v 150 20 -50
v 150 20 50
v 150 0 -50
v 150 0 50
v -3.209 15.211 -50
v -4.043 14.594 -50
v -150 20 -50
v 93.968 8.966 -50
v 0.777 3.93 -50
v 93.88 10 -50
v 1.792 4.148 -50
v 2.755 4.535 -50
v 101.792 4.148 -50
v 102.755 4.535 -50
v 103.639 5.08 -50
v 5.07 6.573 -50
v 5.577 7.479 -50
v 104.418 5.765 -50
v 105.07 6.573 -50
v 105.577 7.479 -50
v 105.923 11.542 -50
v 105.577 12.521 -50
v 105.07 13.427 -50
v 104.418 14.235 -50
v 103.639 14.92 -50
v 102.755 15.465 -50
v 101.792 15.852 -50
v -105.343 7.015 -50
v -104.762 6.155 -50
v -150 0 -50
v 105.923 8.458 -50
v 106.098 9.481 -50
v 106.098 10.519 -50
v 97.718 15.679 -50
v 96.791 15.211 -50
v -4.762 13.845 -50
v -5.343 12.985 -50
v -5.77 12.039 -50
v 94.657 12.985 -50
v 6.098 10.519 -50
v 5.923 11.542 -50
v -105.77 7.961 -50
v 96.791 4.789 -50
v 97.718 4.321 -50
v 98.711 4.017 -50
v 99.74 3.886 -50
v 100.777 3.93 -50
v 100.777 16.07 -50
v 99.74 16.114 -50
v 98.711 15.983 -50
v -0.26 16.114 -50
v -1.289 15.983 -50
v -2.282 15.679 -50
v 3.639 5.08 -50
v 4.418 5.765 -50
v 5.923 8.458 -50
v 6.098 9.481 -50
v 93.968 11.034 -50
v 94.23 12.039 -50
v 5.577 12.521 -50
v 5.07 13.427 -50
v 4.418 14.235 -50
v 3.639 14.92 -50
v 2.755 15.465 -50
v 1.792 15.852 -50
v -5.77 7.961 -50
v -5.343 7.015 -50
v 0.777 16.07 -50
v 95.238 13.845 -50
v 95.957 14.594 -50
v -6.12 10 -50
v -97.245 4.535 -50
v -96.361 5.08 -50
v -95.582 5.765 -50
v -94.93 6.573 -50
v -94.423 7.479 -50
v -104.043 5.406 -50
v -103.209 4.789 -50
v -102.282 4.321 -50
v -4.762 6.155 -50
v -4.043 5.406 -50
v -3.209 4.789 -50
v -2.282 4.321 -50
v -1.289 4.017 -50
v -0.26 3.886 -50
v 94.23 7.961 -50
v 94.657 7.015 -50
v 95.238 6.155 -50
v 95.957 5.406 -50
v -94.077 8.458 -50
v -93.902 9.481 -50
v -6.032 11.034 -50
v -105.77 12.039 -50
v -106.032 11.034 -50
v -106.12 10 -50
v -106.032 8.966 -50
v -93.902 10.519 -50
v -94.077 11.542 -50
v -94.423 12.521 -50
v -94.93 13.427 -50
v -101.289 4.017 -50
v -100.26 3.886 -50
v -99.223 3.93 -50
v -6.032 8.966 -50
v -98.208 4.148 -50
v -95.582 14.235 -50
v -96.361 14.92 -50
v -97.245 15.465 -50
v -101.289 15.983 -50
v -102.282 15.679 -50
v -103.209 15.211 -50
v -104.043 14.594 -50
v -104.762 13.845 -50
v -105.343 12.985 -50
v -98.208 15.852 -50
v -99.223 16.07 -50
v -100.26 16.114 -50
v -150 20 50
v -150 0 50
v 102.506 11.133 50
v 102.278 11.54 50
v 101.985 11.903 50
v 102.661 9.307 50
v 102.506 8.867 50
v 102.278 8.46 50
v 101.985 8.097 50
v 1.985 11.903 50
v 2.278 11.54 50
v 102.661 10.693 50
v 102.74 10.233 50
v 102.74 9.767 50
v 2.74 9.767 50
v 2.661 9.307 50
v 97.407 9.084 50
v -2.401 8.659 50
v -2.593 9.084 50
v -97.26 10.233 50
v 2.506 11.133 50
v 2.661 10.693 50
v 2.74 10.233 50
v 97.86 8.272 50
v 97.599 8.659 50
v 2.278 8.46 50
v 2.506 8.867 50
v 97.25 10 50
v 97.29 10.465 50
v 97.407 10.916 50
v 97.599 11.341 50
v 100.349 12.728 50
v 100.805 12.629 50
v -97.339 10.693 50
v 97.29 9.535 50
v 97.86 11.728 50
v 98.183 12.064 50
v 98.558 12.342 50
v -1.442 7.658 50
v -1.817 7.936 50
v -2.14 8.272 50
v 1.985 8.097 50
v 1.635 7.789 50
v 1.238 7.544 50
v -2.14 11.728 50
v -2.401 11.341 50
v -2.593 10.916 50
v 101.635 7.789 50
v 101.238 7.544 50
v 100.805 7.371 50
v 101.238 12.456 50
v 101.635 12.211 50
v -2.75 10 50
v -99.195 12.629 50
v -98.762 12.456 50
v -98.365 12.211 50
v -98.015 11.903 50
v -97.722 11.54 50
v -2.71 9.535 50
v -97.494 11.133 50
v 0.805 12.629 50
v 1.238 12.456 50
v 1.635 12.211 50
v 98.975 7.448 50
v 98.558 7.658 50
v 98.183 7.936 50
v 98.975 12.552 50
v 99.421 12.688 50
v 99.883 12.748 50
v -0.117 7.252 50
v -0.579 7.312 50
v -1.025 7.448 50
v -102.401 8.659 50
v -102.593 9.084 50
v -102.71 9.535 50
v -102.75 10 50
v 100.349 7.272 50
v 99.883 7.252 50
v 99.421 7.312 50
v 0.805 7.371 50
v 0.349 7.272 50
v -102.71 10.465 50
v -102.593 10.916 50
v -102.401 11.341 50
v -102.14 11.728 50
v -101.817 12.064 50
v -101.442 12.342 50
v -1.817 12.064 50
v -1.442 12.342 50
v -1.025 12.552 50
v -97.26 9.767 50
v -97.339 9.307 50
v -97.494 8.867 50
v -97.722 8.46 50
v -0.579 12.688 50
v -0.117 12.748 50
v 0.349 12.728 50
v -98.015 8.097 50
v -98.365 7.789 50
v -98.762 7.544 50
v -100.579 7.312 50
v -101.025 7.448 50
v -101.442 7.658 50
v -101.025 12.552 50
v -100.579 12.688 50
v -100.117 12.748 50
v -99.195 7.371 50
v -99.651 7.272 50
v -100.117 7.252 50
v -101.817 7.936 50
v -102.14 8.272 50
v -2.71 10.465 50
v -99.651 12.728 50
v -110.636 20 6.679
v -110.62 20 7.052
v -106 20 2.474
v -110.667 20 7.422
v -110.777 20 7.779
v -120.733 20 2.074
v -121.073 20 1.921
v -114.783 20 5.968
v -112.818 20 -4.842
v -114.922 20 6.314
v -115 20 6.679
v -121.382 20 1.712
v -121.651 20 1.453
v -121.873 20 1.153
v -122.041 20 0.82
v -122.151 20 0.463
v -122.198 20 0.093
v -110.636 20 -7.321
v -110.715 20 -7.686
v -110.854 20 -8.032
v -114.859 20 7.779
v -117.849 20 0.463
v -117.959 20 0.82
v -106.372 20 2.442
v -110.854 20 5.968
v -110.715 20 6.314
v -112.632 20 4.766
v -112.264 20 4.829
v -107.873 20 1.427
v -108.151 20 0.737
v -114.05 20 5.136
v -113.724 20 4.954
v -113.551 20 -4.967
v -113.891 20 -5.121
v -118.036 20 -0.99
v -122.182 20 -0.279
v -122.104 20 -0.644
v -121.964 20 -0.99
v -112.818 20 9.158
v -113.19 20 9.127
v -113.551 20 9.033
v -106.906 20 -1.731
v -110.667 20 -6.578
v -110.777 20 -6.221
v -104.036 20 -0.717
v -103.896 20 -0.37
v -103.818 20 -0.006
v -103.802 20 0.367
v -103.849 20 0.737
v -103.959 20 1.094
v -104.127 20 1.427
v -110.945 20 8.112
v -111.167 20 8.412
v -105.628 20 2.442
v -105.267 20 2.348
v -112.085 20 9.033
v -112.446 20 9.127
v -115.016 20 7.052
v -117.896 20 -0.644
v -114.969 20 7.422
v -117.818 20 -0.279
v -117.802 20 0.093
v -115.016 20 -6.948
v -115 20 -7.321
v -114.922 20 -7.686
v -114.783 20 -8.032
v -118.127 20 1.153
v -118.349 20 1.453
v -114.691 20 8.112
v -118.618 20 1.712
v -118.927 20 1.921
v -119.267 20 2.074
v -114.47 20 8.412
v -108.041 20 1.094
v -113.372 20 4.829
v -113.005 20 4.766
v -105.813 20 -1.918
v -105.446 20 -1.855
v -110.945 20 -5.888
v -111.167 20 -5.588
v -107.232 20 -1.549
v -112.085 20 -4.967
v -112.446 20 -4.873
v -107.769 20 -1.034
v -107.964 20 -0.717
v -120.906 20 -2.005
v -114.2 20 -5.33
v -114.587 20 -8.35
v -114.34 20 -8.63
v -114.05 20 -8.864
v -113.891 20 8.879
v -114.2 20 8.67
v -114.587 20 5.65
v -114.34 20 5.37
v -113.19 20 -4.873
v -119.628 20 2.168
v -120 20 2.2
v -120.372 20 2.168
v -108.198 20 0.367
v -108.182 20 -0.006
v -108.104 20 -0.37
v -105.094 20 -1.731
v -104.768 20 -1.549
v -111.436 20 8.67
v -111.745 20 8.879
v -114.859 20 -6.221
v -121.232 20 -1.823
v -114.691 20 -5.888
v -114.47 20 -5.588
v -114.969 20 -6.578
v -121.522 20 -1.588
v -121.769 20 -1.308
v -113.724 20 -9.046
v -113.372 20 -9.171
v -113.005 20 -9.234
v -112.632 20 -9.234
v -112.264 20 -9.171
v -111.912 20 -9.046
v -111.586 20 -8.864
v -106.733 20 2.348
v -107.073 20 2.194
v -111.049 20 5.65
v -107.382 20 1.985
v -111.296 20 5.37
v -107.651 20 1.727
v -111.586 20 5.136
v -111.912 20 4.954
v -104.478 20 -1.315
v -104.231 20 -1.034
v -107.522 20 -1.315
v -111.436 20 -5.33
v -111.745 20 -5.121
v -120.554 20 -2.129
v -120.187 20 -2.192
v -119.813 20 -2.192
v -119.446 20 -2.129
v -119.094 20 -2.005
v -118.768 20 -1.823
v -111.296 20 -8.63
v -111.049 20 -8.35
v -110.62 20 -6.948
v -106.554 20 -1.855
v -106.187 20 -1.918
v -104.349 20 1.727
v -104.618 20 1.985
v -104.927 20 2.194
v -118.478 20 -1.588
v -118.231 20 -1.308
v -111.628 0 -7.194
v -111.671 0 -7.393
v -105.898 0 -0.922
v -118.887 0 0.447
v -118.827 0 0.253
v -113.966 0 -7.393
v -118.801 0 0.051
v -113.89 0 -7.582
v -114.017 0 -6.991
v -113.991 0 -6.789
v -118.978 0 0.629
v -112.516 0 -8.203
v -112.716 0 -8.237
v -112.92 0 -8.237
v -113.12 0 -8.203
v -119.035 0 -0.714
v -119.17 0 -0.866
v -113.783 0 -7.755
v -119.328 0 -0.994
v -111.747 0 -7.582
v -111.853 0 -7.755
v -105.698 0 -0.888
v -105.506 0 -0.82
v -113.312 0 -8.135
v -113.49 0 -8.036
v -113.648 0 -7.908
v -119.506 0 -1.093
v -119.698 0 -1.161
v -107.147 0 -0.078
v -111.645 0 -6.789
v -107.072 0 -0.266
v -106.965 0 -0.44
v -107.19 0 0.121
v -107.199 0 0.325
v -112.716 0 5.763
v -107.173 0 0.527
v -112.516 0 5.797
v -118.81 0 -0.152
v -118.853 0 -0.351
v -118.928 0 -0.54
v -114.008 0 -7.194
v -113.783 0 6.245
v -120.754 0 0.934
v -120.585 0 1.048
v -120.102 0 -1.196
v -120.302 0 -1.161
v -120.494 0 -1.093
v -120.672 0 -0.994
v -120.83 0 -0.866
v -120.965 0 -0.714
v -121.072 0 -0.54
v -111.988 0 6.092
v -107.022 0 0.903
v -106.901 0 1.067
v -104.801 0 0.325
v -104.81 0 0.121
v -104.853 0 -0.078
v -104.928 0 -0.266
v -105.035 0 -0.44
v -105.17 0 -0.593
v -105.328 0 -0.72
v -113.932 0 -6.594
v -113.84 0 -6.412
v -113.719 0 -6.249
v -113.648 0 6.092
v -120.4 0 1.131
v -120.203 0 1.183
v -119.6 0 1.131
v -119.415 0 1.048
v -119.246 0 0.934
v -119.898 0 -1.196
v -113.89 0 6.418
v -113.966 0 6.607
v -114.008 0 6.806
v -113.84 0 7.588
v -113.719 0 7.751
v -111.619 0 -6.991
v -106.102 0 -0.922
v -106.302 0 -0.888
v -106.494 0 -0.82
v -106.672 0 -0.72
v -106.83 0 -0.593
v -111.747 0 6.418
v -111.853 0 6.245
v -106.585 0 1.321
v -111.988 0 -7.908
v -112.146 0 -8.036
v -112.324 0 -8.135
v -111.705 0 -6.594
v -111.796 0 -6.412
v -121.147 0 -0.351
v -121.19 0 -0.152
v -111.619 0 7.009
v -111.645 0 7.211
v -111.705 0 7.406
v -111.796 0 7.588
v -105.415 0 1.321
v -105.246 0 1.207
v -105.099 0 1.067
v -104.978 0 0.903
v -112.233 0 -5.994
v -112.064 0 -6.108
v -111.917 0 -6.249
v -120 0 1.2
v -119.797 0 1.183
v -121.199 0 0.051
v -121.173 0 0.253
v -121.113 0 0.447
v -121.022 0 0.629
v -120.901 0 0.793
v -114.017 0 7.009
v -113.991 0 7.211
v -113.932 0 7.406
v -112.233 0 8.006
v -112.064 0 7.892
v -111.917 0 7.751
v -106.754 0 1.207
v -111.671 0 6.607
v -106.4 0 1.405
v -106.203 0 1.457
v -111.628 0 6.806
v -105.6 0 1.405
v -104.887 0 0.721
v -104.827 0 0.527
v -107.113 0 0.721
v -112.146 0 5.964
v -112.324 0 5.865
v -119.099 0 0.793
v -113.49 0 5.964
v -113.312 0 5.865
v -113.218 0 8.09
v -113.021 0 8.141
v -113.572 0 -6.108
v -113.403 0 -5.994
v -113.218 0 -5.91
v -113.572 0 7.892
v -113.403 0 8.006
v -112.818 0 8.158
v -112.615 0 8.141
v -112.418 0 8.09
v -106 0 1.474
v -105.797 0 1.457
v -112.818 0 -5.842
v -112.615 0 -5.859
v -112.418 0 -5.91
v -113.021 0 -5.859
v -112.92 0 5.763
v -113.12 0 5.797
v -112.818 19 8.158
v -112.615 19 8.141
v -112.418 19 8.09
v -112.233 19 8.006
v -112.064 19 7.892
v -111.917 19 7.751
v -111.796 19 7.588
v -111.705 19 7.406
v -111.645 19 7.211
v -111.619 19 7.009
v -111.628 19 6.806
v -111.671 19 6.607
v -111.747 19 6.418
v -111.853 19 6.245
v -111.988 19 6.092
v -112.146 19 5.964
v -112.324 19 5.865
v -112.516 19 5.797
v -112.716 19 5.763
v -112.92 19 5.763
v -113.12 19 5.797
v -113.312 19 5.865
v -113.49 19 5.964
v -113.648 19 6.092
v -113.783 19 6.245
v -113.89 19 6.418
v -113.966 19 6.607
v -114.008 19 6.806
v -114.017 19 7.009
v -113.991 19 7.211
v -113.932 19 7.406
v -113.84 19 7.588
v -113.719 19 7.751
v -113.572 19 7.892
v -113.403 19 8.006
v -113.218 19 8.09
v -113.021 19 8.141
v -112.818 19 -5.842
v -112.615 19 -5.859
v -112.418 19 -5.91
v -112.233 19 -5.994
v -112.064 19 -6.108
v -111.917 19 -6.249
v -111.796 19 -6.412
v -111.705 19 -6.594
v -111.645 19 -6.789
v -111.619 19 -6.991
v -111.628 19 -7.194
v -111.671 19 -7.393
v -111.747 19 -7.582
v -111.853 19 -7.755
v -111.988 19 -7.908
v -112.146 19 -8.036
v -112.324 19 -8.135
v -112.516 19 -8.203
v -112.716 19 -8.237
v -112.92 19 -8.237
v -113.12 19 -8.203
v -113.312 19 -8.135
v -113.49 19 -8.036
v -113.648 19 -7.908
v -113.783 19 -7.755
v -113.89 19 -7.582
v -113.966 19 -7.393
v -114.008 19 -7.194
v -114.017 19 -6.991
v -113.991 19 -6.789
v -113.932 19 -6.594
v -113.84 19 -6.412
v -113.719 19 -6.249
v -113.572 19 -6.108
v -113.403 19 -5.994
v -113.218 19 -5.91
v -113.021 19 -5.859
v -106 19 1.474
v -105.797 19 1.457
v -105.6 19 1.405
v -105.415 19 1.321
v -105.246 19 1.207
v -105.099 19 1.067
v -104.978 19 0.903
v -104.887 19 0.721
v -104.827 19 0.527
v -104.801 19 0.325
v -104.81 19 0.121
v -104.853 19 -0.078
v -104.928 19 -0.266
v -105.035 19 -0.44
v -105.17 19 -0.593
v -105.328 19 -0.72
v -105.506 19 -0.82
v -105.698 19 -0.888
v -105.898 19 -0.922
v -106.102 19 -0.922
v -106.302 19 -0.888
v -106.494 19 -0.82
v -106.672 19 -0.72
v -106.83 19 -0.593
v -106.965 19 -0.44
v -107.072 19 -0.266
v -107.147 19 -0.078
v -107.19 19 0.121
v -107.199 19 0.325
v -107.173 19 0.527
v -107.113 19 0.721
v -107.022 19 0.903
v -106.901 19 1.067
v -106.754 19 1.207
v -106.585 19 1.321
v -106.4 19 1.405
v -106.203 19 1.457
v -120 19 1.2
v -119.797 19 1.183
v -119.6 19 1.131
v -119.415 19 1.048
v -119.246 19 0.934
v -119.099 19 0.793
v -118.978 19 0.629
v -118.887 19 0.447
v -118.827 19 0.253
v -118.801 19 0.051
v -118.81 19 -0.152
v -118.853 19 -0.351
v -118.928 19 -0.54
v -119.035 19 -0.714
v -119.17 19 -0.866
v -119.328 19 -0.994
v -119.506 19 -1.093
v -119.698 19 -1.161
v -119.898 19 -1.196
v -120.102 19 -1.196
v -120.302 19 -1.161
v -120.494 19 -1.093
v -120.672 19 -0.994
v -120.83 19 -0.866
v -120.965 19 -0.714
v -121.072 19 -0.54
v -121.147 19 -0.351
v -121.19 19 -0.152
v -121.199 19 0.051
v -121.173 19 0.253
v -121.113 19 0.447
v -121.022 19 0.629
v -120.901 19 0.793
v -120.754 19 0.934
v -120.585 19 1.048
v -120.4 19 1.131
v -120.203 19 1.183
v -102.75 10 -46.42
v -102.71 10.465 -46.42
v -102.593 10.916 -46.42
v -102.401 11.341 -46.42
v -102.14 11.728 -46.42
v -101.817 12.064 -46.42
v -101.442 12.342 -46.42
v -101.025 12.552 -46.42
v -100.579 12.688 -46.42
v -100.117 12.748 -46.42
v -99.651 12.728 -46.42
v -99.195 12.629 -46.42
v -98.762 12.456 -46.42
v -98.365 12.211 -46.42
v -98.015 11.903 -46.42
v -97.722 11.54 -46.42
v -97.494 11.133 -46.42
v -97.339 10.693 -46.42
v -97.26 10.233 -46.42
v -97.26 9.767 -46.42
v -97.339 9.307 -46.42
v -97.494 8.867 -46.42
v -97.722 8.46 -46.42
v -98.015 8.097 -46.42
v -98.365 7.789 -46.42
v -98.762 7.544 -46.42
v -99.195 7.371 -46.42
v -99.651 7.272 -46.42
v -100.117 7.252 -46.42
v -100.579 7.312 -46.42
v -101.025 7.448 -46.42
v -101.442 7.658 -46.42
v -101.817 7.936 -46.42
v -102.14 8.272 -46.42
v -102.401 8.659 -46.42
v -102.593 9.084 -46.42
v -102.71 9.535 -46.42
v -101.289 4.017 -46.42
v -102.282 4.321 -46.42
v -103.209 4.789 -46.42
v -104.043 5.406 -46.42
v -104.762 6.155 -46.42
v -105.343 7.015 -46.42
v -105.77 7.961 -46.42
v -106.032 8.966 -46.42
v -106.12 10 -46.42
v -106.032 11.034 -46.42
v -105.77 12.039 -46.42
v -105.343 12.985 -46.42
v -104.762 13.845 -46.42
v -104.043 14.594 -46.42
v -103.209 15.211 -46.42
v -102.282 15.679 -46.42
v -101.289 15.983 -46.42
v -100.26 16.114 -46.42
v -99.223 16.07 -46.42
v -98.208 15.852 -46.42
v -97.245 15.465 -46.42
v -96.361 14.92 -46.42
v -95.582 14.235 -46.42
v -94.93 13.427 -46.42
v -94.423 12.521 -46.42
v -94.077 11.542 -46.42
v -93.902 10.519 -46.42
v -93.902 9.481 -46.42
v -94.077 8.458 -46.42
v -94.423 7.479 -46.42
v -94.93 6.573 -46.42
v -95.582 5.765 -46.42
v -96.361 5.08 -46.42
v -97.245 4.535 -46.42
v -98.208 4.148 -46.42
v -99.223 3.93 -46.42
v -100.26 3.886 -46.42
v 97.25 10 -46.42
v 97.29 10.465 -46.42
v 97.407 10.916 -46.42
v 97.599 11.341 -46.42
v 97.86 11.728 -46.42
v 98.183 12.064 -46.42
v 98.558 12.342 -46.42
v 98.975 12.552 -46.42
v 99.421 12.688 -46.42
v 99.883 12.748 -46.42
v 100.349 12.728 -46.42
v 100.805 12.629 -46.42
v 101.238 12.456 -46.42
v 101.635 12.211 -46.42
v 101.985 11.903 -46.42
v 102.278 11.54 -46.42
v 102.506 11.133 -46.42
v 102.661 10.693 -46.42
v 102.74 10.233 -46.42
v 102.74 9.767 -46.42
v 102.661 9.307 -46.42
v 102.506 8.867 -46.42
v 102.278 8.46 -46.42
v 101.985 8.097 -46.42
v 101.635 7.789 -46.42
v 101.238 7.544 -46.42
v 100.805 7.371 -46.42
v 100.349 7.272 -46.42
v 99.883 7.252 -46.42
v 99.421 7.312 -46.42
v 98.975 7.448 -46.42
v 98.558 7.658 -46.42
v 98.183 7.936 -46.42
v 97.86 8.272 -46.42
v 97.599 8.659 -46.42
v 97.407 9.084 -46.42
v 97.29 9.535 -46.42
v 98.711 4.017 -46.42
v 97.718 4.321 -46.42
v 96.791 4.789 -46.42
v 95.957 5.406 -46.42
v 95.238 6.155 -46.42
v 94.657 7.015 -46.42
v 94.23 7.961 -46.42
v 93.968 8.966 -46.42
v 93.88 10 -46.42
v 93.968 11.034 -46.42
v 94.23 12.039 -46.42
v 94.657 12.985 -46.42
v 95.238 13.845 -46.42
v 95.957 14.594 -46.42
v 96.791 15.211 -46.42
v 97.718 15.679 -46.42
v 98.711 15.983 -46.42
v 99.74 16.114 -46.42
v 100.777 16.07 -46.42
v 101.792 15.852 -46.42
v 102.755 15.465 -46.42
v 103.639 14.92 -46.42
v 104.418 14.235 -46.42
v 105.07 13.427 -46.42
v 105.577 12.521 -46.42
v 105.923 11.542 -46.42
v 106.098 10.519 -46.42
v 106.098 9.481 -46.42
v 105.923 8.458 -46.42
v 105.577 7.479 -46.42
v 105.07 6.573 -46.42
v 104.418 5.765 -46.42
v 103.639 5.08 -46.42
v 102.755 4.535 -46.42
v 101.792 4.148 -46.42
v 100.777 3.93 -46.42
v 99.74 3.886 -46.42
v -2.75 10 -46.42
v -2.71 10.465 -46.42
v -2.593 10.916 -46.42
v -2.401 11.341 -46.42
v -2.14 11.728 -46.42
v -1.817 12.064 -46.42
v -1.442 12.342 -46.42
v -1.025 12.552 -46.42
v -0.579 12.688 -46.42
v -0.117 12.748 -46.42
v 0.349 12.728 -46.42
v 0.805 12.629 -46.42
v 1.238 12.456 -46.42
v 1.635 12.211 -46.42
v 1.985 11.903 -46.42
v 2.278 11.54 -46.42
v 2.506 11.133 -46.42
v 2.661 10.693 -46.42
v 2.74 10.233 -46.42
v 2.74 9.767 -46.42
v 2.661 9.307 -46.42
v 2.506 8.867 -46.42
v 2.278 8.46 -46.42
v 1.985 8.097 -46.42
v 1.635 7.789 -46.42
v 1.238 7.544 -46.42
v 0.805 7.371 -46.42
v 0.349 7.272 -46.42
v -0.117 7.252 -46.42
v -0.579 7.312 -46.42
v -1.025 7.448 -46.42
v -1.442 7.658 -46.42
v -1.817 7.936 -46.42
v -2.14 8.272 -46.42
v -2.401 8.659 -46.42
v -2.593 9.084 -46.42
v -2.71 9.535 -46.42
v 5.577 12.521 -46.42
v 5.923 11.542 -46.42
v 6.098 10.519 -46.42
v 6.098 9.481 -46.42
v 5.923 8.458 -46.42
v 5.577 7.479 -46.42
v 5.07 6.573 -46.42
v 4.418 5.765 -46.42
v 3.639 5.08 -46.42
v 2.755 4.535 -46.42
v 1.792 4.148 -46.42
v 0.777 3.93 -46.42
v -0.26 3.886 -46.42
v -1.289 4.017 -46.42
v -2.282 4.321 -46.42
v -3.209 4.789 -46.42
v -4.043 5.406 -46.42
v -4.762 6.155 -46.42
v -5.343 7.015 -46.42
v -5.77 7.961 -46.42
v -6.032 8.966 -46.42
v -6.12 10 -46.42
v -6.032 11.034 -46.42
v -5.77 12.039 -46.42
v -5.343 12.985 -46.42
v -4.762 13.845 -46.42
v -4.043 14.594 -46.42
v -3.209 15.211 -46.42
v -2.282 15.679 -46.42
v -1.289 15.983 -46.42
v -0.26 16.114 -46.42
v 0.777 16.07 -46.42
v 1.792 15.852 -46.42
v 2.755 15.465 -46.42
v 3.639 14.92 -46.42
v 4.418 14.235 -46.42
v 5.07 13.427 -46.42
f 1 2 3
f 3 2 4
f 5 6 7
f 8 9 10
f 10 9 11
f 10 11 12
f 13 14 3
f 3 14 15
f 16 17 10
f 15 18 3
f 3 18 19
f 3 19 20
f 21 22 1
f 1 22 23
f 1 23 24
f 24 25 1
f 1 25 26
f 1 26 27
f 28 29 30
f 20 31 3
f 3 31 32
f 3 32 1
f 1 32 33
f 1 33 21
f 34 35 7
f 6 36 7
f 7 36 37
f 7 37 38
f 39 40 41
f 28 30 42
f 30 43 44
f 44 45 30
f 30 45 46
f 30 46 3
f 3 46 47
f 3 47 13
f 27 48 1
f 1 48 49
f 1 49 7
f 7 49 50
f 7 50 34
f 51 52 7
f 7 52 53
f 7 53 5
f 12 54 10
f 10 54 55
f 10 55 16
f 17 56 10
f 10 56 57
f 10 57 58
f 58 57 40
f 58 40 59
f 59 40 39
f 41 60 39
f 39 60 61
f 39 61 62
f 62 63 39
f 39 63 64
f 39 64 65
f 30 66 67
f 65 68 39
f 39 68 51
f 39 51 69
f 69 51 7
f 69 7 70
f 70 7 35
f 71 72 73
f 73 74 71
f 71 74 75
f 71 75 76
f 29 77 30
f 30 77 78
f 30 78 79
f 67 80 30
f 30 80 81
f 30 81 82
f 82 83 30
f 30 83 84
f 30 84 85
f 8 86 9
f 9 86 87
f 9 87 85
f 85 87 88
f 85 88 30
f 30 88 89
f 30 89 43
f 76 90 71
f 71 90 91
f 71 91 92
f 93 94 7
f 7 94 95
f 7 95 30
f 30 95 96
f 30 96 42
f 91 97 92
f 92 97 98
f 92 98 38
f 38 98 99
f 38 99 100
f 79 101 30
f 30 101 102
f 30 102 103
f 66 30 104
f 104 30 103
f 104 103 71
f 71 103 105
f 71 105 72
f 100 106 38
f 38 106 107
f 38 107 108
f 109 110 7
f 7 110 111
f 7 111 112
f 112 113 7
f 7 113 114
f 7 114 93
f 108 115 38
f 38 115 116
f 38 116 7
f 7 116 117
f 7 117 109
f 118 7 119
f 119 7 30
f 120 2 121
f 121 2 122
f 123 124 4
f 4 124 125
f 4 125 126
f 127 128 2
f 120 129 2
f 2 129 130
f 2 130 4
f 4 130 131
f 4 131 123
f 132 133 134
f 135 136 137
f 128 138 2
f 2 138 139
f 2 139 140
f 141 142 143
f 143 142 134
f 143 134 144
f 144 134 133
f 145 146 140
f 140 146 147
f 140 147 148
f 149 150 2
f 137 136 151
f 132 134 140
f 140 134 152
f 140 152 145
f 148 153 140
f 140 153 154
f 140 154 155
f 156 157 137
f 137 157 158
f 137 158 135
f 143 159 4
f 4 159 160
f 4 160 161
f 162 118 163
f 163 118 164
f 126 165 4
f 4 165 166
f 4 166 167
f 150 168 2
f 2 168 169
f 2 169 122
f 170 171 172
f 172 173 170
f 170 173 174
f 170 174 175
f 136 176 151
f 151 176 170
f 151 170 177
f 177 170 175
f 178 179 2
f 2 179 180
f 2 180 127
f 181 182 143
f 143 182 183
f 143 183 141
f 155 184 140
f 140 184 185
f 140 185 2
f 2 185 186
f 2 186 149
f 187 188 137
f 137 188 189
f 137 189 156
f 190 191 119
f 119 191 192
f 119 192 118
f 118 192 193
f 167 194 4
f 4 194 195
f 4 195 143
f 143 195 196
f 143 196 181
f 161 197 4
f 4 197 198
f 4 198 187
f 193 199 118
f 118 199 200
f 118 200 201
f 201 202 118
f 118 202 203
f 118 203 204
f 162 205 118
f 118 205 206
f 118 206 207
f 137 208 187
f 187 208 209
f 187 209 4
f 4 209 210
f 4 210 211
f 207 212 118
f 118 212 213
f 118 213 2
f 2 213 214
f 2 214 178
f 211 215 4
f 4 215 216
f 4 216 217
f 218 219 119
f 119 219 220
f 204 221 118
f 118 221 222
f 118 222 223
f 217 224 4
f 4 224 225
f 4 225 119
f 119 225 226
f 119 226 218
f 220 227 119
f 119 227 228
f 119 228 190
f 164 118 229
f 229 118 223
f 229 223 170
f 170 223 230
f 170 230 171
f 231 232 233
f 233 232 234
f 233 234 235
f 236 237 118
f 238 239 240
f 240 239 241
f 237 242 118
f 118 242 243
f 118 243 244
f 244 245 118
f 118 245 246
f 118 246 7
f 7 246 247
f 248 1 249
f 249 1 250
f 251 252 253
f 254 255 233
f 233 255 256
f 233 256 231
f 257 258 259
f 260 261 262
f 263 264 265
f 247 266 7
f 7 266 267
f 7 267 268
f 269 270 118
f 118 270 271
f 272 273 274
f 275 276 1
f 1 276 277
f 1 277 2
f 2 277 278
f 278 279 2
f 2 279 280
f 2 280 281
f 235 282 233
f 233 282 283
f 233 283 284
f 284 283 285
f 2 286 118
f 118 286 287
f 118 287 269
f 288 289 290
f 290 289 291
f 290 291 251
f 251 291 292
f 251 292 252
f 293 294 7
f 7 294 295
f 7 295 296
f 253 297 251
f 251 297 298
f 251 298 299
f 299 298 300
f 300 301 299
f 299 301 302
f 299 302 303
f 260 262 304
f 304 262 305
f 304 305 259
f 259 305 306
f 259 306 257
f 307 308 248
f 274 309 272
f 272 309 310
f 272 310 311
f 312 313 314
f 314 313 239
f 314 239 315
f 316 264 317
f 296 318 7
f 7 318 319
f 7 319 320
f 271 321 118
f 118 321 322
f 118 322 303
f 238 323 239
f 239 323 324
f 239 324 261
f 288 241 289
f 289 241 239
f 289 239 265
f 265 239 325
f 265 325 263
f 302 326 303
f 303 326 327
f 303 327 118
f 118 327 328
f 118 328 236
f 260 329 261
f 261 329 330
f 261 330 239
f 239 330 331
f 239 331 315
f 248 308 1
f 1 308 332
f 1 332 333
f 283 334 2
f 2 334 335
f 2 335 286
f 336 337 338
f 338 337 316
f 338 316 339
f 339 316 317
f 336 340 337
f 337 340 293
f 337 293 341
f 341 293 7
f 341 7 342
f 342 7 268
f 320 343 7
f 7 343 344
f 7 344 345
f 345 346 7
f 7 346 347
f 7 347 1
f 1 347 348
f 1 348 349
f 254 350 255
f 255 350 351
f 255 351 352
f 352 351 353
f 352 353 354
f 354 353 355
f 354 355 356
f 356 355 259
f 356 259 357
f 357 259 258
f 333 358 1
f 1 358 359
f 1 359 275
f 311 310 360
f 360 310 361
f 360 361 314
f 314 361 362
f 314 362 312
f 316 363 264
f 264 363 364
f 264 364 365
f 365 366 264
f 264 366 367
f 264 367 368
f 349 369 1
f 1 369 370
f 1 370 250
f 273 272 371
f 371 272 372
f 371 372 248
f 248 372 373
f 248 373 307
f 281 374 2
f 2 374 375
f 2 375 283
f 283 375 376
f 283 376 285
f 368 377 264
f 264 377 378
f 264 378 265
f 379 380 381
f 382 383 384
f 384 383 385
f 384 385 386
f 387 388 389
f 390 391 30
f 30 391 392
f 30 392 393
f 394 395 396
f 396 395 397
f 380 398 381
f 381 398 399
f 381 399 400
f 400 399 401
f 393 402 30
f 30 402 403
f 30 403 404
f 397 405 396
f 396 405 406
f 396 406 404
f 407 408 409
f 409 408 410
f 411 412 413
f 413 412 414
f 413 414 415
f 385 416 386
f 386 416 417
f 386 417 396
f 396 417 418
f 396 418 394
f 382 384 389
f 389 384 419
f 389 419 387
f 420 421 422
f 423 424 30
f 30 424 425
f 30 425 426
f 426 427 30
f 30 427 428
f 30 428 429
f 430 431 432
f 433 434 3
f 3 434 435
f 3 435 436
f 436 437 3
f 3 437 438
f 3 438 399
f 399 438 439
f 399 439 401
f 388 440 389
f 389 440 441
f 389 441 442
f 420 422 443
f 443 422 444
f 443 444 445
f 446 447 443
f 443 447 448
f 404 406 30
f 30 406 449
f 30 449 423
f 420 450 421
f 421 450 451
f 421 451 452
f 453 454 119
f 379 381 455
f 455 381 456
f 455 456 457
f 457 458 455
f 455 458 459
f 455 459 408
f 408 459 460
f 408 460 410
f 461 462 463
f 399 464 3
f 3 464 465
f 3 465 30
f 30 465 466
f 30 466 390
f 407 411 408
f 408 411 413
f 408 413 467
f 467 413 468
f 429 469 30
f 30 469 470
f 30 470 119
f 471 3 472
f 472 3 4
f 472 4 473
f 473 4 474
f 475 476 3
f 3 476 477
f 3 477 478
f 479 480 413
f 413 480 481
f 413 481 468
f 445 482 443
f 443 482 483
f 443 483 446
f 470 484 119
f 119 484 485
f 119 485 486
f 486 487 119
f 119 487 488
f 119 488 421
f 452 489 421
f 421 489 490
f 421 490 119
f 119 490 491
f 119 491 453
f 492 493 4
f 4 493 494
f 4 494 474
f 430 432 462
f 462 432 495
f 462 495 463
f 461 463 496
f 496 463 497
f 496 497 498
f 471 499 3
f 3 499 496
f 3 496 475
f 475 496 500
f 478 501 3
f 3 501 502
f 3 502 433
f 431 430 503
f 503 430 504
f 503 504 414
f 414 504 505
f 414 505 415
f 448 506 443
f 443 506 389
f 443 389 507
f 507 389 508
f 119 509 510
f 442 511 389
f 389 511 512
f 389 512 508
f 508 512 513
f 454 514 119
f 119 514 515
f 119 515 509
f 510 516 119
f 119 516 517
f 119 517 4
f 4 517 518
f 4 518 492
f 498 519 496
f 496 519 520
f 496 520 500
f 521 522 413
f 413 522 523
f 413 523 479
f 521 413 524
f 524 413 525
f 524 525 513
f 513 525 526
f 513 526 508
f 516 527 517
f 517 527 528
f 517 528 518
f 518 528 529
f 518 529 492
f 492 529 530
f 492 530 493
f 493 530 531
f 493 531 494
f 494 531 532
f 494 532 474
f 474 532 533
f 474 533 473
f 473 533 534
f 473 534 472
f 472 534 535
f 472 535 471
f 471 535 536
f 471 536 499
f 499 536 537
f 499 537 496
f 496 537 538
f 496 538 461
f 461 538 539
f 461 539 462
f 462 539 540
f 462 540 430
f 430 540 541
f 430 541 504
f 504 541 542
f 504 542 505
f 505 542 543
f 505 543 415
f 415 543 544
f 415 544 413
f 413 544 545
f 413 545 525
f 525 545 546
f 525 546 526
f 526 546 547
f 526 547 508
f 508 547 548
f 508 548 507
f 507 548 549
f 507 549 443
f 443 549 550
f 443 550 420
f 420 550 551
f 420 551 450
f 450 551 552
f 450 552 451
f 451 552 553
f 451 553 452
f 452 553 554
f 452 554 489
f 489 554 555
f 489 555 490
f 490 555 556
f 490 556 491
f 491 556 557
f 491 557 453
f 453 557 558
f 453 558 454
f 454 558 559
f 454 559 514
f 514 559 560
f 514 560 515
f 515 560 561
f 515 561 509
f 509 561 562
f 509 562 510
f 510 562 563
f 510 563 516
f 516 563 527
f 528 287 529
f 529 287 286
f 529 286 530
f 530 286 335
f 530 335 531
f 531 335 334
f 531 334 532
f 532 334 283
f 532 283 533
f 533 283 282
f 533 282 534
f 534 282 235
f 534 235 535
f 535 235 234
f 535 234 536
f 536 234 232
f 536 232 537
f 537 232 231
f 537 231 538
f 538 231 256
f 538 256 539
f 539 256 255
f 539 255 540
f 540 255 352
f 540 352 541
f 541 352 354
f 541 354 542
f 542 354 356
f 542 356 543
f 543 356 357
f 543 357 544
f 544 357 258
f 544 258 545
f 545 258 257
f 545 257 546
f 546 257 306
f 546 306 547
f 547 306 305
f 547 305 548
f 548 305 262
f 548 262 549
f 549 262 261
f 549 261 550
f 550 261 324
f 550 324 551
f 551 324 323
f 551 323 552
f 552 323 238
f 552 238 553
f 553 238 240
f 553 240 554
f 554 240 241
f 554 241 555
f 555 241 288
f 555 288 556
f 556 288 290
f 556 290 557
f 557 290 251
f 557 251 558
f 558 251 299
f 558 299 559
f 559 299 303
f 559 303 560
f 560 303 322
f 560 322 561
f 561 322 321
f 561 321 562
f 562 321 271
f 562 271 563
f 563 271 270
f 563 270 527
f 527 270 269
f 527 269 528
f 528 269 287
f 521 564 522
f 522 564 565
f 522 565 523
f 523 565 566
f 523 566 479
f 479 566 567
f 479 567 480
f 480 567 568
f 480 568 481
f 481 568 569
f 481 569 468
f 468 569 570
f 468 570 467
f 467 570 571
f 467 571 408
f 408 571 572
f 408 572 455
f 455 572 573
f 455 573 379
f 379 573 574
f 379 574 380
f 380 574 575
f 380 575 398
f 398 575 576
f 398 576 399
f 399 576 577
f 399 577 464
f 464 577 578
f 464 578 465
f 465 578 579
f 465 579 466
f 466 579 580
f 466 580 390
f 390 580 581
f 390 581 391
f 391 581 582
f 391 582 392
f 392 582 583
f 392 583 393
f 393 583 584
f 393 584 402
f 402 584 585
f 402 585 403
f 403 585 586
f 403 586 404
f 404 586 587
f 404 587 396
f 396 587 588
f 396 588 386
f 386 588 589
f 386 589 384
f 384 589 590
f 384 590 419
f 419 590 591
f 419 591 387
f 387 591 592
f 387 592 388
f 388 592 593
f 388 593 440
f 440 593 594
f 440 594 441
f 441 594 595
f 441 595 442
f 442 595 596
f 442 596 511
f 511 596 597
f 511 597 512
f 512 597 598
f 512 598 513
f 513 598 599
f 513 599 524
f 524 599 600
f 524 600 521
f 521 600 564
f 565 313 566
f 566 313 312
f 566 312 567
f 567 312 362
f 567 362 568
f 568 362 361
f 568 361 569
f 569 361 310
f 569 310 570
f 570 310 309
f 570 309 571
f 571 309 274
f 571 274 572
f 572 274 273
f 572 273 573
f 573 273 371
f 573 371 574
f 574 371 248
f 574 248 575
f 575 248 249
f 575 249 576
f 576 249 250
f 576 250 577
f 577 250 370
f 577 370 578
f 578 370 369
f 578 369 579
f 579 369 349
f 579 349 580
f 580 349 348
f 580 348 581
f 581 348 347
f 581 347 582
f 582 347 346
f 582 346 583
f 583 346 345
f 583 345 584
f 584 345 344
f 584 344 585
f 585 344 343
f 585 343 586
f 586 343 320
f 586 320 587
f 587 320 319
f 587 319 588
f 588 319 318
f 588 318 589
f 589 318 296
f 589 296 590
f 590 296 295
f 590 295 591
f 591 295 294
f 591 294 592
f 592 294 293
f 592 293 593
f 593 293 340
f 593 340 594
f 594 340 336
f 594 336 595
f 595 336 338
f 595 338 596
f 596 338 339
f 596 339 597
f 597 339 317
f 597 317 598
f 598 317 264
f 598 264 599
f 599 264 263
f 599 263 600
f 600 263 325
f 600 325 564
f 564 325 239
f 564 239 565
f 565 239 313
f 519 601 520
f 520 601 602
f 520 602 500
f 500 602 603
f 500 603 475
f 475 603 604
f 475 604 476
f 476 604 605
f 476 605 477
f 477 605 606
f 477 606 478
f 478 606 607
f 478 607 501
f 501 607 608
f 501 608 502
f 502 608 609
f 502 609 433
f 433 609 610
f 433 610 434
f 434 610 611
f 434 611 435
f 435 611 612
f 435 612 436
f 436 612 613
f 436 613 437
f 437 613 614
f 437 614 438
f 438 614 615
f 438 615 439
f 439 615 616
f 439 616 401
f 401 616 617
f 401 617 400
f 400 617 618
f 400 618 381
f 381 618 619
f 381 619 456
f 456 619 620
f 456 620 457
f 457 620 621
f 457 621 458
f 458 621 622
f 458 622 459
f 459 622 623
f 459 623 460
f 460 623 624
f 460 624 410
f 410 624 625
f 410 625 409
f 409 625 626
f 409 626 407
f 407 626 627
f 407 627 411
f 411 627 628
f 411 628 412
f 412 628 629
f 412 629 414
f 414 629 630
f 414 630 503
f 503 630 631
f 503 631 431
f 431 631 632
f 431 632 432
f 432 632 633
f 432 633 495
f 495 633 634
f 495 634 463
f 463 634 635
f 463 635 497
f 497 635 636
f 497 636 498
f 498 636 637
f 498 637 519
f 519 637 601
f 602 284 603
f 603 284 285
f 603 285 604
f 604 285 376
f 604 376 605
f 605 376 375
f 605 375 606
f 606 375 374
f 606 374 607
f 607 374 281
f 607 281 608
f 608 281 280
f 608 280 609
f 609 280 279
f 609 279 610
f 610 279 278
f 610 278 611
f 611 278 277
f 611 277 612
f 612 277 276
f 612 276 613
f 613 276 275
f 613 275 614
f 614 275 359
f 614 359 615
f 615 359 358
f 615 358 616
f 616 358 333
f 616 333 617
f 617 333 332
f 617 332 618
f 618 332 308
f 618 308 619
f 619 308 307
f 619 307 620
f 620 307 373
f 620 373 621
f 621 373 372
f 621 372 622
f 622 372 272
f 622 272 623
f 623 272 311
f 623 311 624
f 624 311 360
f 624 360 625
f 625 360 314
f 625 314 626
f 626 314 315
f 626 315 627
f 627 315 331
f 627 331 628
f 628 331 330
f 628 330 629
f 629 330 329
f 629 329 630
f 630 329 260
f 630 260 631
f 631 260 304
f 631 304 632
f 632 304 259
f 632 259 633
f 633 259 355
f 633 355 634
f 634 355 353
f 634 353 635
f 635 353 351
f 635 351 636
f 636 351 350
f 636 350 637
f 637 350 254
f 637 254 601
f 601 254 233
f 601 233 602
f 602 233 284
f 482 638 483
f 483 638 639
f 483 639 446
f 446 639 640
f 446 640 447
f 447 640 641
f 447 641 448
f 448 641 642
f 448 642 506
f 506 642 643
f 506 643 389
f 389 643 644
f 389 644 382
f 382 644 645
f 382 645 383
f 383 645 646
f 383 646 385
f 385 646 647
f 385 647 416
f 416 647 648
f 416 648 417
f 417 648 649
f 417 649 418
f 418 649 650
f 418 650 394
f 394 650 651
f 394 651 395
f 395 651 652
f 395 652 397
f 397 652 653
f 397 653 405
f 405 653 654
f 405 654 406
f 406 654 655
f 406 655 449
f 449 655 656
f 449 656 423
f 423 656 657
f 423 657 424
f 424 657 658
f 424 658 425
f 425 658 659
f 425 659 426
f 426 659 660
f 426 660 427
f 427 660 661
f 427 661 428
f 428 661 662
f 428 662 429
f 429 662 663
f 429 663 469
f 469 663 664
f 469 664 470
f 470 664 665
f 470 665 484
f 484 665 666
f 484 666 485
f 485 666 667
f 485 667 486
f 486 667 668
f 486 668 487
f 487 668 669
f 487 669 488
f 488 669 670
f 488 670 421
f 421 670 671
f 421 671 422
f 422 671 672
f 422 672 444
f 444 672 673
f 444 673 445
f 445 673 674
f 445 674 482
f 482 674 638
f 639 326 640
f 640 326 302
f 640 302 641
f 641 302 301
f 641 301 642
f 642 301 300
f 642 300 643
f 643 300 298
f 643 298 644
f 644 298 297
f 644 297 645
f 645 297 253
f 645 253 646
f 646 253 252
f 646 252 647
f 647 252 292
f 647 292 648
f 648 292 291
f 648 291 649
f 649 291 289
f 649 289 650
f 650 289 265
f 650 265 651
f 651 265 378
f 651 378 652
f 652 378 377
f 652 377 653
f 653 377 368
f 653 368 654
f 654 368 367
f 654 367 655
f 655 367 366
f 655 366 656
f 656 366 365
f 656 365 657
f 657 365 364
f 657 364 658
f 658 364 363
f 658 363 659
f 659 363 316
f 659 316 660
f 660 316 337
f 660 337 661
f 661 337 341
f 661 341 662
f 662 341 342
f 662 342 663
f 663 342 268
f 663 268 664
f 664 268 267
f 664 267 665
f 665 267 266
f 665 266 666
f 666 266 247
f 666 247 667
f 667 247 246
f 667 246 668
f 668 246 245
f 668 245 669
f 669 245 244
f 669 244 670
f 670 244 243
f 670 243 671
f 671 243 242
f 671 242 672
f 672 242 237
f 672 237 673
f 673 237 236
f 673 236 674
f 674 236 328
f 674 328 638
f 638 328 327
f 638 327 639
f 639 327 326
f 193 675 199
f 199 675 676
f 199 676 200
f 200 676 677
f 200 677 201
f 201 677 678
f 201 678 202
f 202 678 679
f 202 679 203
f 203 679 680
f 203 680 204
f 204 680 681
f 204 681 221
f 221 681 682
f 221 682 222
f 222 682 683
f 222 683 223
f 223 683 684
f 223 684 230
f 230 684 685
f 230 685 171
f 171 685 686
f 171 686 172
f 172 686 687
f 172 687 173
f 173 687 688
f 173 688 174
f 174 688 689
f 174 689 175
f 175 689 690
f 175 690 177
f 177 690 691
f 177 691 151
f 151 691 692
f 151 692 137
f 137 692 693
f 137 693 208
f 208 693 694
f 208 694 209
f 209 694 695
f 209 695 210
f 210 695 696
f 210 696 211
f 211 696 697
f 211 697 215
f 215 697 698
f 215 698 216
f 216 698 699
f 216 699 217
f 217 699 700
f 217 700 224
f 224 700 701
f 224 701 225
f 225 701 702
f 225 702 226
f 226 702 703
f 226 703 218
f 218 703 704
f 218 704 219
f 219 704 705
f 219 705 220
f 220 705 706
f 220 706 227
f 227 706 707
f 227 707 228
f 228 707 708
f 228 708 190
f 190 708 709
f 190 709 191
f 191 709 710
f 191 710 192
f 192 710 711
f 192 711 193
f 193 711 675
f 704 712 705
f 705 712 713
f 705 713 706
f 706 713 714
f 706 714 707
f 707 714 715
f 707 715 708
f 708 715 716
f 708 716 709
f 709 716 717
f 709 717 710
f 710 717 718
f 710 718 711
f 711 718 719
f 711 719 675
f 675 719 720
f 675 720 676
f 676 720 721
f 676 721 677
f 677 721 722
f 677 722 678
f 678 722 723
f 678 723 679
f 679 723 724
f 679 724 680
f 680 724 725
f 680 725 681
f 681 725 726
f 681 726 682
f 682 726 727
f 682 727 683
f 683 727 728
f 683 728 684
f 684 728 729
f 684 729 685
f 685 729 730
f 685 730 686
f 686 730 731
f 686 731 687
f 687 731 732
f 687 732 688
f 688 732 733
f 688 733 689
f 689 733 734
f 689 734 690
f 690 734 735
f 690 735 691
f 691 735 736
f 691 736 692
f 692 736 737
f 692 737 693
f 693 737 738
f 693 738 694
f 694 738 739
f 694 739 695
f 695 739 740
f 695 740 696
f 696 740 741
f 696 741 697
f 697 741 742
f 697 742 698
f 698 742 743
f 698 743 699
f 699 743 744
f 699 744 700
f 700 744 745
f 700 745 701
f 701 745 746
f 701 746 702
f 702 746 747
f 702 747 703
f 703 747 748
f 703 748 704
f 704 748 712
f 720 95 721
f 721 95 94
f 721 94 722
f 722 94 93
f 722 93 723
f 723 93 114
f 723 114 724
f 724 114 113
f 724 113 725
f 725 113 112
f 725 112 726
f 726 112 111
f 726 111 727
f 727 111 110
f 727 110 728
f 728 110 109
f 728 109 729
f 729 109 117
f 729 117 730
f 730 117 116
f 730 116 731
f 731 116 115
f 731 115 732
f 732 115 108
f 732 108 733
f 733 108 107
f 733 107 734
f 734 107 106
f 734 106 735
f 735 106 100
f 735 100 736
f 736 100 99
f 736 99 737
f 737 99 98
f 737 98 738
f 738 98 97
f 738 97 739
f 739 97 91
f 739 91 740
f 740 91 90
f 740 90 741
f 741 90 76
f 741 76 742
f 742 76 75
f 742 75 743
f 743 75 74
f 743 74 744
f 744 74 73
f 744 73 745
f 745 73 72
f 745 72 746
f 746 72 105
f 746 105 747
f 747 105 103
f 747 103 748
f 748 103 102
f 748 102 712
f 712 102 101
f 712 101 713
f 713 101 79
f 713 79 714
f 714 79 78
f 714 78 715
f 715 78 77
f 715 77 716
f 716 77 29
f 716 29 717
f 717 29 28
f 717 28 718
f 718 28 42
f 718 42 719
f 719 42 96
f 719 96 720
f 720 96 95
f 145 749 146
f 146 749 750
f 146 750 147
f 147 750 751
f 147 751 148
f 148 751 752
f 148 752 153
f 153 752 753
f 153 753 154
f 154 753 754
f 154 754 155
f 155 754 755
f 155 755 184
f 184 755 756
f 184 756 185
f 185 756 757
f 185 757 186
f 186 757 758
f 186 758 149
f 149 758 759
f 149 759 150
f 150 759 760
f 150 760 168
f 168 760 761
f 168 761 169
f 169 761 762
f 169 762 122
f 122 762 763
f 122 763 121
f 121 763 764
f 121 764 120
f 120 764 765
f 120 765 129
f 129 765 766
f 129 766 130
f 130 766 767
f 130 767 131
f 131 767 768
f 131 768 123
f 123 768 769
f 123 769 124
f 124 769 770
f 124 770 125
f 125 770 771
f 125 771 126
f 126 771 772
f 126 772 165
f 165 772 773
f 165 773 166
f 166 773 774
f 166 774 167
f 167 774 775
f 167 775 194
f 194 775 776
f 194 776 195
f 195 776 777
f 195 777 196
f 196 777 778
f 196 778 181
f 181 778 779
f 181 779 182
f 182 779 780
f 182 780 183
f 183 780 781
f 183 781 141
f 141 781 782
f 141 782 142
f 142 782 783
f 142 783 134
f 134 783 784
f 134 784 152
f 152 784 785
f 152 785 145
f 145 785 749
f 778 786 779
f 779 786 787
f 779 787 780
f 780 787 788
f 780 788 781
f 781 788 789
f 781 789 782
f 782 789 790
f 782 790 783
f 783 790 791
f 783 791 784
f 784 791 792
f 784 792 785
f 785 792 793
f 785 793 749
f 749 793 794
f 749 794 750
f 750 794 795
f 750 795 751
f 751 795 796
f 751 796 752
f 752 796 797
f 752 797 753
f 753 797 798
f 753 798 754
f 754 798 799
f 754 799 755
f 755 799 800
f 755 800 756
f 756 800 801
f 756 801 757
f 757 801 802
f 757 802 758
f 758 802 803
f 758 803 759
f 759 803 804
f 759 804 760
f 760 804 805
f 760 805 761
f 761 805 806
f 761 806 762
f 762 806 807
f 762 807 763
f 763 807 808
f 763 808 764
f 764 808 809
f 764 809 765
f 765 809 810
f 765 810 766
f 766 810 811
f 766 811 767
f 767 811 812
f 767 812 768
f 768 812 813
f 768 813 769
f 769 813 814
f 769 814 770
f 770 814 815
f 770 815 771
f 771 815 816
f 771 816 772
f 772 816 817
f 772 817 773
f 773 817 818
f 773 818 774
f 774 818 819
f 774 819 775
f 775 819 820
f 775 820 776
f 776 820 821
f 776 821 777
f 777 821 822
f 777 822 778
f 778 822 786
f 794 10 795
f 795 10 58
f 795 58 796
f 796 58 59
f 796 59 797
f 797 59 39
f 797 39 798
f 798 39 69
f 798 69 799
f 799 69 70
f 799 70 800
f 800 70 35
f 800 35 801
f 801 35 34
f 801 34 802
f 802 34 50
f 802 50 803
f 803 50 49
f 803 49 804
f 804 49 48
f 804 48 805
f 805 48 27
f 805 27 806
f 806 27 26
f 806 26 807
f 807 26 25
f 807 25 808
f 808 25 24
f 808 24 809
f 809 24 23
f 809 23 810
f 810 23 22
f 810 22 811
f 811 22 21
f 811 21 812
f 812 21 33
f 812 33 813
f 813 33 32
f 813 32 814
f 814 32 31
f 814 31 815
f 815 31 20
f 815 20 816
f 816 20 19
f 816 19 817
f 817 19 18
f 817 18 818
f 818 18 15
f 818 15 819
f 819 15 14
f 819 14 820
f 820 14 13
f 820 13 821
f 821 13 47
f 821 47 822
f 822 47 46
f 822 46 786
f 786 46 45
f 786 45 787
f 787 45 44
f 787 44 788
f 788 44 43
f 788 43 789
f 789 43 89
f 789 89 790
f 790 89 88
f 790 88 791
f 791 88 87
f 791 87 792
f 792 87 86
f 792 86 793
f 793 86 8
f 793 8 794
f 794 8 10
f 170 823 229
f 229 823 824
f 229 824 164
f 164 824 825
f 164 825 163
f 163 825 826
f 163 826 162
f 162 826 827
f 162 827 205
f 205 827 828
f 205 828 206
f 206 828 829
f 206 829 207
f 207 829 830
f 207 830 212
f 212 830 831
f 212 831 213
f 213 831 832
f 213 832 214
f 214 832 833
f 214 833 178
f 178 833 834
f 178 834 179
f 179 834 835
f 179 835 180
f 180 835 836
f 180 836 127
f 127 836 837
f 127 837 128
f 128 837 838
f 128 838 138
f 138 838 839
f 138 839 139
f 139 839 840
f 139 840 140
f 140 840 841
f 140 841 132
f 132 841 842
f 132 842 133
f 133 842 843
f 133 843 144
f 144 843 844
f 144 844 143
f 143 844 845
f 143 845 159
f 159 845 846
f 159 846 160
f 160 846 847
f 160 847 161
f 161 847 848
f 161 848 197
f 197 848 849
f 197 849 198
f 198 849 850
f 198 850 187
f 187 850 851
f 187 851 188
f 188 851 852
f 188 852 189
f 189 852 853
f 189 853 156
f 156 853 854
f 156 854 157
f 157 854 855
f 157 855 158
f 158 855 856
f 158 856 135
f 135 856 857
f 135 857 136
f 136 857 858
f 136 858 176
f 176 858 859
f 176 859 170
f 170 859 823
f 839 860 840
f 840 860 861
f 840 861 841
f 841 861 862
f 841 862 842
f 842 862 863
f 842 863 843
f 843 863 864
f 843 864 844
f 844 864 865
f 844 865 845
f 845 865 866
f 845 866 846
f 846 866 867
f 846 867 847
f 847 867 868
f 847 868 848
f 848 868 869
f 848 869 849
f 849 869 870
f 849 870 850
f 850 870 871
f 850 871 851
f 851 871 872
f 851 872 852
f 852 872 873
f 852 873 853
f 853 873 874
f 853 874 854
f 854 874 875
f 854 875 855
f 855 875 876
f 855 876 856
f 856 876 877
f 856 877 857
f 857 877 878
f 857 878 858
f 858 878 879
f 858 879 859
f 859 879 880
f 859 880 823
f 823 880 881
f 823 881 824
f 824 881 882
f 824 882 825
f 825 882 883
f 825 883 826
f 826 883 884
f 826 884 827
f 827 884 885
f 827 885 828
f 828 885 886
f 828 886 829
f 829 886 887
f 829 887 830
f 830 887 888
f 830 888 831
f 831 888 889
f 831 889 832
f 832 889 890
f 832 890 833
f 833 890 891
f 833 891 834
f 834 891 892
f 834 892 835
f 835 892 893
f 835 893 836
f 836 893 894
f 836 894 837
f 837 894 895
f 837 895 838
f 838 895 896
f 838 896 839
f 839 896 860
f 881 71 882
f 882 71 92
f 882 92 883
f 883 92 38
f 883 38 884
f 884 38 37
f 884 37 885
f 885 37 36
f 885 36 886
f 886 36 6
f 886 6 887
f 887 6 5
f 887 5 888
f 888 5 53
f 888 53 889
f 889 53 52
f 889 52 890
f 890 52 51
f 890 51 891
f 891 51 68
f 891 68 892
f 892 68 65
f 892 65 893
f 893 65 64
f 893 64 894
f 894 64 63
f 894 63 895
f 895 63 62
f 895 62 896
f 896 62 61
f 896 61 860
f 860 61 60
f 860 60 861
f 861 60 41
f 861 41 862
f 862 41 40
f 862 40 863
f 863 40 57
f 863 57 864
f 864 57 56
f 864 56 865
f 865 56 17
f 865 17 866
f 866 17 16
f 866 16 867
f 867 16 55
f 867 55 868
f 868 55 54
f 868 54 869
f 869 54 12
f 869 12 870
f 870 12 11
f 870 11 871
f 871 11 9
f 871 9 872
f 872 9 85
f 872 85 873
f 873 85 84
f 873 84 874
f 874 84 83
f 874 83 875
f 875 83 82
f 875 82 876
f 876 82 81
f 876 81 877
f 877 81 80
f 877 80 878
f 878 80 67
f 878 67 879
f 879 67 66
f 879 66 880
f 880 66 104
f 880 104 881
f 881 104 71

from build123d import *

# Parameters (mm, degrees)
SKETCH4_W                                       = 300
SKETCH4_H                                       = 100
BOSS_EXTRUDE2_DEPTH                             = 20
CSK_FOR_M2_FLAT_HEAD_MACHINE_SCREW1_D           = 2.4
CSK_FOR_M2_FLAT_HEAD_MACHINE_SCREW1_CSINK_D     = 4.4
CSK_FOR_M2_FLAT_HEAD_MACHINE_SCREW1_CSINK_ANGLE = 90
CBORE_FOR_M5_HEX_HEAD_BOLT1_D                   = 5.5
CBORE_FOR_M5_HEX_HEAD_BOLT1_CBORE_D             = 12.24
CBORE_FOR_M5_HEX_HEAD_BOLT1_CBORE_DEPTH         = 3.58


with BuildPart() as part:
    # Sketch4 → Boss-Extrude2 (new body)
    with BuildSketch(Plane(origin=(0, 0, 0), x_dir=(1, 0, 0), z_dir=(0, 1, 0))):
        Rectangle(SKETCH4_W, SKETCH4_H)
    extrude(amount=BOSS_EXTRUDE2_DEPTH)

    # CSK for M2 Flat Head Machine Screw1 (through all)
    with Locations(Plane(origin=(0, 20, 0), x_dir=(1, 0, 0), z_dir=(0, 1, 0))):
        with Locations((-120, 0), (-106, -0.273765591), (-112.818119913, 7.041508898), (-112.818119913, -6.958491102)):
            CounterSinkHole(CSK_FOR_M2_FLAT_HEAD_MACHINE_SCREW1_D / 2, CSK_FOR_M2_FLAT_HEAD_MACHINE_SCREW1_CSINK_D / 2, counter_sink_angle=CSK_FOR_M2_FLAT_HEAD_MACHINE_SCREW1_CSINK_ANGLE)

    # CBORE for M5 Hex Head Bolt1 (through all)
    with Locations(Plane(origin=(0, 0, -50), x_dir=(-1, 0, 0), z_dir=(0, 0, -1))):
        with Locations((0, 10), (-100, 10), (100, 10)):
            CounterBoreHole(CBORE_FOR_M5_HEX_HEAD_BOLT1_D / 2, CBORE_FOR_M5_HEX_HEAD_BOLT1_CBORE_D / 2, CBORE_FOR_M5_HEX_HEAD_BOLT1_CBORE_DEPTH)


solid = part.part
